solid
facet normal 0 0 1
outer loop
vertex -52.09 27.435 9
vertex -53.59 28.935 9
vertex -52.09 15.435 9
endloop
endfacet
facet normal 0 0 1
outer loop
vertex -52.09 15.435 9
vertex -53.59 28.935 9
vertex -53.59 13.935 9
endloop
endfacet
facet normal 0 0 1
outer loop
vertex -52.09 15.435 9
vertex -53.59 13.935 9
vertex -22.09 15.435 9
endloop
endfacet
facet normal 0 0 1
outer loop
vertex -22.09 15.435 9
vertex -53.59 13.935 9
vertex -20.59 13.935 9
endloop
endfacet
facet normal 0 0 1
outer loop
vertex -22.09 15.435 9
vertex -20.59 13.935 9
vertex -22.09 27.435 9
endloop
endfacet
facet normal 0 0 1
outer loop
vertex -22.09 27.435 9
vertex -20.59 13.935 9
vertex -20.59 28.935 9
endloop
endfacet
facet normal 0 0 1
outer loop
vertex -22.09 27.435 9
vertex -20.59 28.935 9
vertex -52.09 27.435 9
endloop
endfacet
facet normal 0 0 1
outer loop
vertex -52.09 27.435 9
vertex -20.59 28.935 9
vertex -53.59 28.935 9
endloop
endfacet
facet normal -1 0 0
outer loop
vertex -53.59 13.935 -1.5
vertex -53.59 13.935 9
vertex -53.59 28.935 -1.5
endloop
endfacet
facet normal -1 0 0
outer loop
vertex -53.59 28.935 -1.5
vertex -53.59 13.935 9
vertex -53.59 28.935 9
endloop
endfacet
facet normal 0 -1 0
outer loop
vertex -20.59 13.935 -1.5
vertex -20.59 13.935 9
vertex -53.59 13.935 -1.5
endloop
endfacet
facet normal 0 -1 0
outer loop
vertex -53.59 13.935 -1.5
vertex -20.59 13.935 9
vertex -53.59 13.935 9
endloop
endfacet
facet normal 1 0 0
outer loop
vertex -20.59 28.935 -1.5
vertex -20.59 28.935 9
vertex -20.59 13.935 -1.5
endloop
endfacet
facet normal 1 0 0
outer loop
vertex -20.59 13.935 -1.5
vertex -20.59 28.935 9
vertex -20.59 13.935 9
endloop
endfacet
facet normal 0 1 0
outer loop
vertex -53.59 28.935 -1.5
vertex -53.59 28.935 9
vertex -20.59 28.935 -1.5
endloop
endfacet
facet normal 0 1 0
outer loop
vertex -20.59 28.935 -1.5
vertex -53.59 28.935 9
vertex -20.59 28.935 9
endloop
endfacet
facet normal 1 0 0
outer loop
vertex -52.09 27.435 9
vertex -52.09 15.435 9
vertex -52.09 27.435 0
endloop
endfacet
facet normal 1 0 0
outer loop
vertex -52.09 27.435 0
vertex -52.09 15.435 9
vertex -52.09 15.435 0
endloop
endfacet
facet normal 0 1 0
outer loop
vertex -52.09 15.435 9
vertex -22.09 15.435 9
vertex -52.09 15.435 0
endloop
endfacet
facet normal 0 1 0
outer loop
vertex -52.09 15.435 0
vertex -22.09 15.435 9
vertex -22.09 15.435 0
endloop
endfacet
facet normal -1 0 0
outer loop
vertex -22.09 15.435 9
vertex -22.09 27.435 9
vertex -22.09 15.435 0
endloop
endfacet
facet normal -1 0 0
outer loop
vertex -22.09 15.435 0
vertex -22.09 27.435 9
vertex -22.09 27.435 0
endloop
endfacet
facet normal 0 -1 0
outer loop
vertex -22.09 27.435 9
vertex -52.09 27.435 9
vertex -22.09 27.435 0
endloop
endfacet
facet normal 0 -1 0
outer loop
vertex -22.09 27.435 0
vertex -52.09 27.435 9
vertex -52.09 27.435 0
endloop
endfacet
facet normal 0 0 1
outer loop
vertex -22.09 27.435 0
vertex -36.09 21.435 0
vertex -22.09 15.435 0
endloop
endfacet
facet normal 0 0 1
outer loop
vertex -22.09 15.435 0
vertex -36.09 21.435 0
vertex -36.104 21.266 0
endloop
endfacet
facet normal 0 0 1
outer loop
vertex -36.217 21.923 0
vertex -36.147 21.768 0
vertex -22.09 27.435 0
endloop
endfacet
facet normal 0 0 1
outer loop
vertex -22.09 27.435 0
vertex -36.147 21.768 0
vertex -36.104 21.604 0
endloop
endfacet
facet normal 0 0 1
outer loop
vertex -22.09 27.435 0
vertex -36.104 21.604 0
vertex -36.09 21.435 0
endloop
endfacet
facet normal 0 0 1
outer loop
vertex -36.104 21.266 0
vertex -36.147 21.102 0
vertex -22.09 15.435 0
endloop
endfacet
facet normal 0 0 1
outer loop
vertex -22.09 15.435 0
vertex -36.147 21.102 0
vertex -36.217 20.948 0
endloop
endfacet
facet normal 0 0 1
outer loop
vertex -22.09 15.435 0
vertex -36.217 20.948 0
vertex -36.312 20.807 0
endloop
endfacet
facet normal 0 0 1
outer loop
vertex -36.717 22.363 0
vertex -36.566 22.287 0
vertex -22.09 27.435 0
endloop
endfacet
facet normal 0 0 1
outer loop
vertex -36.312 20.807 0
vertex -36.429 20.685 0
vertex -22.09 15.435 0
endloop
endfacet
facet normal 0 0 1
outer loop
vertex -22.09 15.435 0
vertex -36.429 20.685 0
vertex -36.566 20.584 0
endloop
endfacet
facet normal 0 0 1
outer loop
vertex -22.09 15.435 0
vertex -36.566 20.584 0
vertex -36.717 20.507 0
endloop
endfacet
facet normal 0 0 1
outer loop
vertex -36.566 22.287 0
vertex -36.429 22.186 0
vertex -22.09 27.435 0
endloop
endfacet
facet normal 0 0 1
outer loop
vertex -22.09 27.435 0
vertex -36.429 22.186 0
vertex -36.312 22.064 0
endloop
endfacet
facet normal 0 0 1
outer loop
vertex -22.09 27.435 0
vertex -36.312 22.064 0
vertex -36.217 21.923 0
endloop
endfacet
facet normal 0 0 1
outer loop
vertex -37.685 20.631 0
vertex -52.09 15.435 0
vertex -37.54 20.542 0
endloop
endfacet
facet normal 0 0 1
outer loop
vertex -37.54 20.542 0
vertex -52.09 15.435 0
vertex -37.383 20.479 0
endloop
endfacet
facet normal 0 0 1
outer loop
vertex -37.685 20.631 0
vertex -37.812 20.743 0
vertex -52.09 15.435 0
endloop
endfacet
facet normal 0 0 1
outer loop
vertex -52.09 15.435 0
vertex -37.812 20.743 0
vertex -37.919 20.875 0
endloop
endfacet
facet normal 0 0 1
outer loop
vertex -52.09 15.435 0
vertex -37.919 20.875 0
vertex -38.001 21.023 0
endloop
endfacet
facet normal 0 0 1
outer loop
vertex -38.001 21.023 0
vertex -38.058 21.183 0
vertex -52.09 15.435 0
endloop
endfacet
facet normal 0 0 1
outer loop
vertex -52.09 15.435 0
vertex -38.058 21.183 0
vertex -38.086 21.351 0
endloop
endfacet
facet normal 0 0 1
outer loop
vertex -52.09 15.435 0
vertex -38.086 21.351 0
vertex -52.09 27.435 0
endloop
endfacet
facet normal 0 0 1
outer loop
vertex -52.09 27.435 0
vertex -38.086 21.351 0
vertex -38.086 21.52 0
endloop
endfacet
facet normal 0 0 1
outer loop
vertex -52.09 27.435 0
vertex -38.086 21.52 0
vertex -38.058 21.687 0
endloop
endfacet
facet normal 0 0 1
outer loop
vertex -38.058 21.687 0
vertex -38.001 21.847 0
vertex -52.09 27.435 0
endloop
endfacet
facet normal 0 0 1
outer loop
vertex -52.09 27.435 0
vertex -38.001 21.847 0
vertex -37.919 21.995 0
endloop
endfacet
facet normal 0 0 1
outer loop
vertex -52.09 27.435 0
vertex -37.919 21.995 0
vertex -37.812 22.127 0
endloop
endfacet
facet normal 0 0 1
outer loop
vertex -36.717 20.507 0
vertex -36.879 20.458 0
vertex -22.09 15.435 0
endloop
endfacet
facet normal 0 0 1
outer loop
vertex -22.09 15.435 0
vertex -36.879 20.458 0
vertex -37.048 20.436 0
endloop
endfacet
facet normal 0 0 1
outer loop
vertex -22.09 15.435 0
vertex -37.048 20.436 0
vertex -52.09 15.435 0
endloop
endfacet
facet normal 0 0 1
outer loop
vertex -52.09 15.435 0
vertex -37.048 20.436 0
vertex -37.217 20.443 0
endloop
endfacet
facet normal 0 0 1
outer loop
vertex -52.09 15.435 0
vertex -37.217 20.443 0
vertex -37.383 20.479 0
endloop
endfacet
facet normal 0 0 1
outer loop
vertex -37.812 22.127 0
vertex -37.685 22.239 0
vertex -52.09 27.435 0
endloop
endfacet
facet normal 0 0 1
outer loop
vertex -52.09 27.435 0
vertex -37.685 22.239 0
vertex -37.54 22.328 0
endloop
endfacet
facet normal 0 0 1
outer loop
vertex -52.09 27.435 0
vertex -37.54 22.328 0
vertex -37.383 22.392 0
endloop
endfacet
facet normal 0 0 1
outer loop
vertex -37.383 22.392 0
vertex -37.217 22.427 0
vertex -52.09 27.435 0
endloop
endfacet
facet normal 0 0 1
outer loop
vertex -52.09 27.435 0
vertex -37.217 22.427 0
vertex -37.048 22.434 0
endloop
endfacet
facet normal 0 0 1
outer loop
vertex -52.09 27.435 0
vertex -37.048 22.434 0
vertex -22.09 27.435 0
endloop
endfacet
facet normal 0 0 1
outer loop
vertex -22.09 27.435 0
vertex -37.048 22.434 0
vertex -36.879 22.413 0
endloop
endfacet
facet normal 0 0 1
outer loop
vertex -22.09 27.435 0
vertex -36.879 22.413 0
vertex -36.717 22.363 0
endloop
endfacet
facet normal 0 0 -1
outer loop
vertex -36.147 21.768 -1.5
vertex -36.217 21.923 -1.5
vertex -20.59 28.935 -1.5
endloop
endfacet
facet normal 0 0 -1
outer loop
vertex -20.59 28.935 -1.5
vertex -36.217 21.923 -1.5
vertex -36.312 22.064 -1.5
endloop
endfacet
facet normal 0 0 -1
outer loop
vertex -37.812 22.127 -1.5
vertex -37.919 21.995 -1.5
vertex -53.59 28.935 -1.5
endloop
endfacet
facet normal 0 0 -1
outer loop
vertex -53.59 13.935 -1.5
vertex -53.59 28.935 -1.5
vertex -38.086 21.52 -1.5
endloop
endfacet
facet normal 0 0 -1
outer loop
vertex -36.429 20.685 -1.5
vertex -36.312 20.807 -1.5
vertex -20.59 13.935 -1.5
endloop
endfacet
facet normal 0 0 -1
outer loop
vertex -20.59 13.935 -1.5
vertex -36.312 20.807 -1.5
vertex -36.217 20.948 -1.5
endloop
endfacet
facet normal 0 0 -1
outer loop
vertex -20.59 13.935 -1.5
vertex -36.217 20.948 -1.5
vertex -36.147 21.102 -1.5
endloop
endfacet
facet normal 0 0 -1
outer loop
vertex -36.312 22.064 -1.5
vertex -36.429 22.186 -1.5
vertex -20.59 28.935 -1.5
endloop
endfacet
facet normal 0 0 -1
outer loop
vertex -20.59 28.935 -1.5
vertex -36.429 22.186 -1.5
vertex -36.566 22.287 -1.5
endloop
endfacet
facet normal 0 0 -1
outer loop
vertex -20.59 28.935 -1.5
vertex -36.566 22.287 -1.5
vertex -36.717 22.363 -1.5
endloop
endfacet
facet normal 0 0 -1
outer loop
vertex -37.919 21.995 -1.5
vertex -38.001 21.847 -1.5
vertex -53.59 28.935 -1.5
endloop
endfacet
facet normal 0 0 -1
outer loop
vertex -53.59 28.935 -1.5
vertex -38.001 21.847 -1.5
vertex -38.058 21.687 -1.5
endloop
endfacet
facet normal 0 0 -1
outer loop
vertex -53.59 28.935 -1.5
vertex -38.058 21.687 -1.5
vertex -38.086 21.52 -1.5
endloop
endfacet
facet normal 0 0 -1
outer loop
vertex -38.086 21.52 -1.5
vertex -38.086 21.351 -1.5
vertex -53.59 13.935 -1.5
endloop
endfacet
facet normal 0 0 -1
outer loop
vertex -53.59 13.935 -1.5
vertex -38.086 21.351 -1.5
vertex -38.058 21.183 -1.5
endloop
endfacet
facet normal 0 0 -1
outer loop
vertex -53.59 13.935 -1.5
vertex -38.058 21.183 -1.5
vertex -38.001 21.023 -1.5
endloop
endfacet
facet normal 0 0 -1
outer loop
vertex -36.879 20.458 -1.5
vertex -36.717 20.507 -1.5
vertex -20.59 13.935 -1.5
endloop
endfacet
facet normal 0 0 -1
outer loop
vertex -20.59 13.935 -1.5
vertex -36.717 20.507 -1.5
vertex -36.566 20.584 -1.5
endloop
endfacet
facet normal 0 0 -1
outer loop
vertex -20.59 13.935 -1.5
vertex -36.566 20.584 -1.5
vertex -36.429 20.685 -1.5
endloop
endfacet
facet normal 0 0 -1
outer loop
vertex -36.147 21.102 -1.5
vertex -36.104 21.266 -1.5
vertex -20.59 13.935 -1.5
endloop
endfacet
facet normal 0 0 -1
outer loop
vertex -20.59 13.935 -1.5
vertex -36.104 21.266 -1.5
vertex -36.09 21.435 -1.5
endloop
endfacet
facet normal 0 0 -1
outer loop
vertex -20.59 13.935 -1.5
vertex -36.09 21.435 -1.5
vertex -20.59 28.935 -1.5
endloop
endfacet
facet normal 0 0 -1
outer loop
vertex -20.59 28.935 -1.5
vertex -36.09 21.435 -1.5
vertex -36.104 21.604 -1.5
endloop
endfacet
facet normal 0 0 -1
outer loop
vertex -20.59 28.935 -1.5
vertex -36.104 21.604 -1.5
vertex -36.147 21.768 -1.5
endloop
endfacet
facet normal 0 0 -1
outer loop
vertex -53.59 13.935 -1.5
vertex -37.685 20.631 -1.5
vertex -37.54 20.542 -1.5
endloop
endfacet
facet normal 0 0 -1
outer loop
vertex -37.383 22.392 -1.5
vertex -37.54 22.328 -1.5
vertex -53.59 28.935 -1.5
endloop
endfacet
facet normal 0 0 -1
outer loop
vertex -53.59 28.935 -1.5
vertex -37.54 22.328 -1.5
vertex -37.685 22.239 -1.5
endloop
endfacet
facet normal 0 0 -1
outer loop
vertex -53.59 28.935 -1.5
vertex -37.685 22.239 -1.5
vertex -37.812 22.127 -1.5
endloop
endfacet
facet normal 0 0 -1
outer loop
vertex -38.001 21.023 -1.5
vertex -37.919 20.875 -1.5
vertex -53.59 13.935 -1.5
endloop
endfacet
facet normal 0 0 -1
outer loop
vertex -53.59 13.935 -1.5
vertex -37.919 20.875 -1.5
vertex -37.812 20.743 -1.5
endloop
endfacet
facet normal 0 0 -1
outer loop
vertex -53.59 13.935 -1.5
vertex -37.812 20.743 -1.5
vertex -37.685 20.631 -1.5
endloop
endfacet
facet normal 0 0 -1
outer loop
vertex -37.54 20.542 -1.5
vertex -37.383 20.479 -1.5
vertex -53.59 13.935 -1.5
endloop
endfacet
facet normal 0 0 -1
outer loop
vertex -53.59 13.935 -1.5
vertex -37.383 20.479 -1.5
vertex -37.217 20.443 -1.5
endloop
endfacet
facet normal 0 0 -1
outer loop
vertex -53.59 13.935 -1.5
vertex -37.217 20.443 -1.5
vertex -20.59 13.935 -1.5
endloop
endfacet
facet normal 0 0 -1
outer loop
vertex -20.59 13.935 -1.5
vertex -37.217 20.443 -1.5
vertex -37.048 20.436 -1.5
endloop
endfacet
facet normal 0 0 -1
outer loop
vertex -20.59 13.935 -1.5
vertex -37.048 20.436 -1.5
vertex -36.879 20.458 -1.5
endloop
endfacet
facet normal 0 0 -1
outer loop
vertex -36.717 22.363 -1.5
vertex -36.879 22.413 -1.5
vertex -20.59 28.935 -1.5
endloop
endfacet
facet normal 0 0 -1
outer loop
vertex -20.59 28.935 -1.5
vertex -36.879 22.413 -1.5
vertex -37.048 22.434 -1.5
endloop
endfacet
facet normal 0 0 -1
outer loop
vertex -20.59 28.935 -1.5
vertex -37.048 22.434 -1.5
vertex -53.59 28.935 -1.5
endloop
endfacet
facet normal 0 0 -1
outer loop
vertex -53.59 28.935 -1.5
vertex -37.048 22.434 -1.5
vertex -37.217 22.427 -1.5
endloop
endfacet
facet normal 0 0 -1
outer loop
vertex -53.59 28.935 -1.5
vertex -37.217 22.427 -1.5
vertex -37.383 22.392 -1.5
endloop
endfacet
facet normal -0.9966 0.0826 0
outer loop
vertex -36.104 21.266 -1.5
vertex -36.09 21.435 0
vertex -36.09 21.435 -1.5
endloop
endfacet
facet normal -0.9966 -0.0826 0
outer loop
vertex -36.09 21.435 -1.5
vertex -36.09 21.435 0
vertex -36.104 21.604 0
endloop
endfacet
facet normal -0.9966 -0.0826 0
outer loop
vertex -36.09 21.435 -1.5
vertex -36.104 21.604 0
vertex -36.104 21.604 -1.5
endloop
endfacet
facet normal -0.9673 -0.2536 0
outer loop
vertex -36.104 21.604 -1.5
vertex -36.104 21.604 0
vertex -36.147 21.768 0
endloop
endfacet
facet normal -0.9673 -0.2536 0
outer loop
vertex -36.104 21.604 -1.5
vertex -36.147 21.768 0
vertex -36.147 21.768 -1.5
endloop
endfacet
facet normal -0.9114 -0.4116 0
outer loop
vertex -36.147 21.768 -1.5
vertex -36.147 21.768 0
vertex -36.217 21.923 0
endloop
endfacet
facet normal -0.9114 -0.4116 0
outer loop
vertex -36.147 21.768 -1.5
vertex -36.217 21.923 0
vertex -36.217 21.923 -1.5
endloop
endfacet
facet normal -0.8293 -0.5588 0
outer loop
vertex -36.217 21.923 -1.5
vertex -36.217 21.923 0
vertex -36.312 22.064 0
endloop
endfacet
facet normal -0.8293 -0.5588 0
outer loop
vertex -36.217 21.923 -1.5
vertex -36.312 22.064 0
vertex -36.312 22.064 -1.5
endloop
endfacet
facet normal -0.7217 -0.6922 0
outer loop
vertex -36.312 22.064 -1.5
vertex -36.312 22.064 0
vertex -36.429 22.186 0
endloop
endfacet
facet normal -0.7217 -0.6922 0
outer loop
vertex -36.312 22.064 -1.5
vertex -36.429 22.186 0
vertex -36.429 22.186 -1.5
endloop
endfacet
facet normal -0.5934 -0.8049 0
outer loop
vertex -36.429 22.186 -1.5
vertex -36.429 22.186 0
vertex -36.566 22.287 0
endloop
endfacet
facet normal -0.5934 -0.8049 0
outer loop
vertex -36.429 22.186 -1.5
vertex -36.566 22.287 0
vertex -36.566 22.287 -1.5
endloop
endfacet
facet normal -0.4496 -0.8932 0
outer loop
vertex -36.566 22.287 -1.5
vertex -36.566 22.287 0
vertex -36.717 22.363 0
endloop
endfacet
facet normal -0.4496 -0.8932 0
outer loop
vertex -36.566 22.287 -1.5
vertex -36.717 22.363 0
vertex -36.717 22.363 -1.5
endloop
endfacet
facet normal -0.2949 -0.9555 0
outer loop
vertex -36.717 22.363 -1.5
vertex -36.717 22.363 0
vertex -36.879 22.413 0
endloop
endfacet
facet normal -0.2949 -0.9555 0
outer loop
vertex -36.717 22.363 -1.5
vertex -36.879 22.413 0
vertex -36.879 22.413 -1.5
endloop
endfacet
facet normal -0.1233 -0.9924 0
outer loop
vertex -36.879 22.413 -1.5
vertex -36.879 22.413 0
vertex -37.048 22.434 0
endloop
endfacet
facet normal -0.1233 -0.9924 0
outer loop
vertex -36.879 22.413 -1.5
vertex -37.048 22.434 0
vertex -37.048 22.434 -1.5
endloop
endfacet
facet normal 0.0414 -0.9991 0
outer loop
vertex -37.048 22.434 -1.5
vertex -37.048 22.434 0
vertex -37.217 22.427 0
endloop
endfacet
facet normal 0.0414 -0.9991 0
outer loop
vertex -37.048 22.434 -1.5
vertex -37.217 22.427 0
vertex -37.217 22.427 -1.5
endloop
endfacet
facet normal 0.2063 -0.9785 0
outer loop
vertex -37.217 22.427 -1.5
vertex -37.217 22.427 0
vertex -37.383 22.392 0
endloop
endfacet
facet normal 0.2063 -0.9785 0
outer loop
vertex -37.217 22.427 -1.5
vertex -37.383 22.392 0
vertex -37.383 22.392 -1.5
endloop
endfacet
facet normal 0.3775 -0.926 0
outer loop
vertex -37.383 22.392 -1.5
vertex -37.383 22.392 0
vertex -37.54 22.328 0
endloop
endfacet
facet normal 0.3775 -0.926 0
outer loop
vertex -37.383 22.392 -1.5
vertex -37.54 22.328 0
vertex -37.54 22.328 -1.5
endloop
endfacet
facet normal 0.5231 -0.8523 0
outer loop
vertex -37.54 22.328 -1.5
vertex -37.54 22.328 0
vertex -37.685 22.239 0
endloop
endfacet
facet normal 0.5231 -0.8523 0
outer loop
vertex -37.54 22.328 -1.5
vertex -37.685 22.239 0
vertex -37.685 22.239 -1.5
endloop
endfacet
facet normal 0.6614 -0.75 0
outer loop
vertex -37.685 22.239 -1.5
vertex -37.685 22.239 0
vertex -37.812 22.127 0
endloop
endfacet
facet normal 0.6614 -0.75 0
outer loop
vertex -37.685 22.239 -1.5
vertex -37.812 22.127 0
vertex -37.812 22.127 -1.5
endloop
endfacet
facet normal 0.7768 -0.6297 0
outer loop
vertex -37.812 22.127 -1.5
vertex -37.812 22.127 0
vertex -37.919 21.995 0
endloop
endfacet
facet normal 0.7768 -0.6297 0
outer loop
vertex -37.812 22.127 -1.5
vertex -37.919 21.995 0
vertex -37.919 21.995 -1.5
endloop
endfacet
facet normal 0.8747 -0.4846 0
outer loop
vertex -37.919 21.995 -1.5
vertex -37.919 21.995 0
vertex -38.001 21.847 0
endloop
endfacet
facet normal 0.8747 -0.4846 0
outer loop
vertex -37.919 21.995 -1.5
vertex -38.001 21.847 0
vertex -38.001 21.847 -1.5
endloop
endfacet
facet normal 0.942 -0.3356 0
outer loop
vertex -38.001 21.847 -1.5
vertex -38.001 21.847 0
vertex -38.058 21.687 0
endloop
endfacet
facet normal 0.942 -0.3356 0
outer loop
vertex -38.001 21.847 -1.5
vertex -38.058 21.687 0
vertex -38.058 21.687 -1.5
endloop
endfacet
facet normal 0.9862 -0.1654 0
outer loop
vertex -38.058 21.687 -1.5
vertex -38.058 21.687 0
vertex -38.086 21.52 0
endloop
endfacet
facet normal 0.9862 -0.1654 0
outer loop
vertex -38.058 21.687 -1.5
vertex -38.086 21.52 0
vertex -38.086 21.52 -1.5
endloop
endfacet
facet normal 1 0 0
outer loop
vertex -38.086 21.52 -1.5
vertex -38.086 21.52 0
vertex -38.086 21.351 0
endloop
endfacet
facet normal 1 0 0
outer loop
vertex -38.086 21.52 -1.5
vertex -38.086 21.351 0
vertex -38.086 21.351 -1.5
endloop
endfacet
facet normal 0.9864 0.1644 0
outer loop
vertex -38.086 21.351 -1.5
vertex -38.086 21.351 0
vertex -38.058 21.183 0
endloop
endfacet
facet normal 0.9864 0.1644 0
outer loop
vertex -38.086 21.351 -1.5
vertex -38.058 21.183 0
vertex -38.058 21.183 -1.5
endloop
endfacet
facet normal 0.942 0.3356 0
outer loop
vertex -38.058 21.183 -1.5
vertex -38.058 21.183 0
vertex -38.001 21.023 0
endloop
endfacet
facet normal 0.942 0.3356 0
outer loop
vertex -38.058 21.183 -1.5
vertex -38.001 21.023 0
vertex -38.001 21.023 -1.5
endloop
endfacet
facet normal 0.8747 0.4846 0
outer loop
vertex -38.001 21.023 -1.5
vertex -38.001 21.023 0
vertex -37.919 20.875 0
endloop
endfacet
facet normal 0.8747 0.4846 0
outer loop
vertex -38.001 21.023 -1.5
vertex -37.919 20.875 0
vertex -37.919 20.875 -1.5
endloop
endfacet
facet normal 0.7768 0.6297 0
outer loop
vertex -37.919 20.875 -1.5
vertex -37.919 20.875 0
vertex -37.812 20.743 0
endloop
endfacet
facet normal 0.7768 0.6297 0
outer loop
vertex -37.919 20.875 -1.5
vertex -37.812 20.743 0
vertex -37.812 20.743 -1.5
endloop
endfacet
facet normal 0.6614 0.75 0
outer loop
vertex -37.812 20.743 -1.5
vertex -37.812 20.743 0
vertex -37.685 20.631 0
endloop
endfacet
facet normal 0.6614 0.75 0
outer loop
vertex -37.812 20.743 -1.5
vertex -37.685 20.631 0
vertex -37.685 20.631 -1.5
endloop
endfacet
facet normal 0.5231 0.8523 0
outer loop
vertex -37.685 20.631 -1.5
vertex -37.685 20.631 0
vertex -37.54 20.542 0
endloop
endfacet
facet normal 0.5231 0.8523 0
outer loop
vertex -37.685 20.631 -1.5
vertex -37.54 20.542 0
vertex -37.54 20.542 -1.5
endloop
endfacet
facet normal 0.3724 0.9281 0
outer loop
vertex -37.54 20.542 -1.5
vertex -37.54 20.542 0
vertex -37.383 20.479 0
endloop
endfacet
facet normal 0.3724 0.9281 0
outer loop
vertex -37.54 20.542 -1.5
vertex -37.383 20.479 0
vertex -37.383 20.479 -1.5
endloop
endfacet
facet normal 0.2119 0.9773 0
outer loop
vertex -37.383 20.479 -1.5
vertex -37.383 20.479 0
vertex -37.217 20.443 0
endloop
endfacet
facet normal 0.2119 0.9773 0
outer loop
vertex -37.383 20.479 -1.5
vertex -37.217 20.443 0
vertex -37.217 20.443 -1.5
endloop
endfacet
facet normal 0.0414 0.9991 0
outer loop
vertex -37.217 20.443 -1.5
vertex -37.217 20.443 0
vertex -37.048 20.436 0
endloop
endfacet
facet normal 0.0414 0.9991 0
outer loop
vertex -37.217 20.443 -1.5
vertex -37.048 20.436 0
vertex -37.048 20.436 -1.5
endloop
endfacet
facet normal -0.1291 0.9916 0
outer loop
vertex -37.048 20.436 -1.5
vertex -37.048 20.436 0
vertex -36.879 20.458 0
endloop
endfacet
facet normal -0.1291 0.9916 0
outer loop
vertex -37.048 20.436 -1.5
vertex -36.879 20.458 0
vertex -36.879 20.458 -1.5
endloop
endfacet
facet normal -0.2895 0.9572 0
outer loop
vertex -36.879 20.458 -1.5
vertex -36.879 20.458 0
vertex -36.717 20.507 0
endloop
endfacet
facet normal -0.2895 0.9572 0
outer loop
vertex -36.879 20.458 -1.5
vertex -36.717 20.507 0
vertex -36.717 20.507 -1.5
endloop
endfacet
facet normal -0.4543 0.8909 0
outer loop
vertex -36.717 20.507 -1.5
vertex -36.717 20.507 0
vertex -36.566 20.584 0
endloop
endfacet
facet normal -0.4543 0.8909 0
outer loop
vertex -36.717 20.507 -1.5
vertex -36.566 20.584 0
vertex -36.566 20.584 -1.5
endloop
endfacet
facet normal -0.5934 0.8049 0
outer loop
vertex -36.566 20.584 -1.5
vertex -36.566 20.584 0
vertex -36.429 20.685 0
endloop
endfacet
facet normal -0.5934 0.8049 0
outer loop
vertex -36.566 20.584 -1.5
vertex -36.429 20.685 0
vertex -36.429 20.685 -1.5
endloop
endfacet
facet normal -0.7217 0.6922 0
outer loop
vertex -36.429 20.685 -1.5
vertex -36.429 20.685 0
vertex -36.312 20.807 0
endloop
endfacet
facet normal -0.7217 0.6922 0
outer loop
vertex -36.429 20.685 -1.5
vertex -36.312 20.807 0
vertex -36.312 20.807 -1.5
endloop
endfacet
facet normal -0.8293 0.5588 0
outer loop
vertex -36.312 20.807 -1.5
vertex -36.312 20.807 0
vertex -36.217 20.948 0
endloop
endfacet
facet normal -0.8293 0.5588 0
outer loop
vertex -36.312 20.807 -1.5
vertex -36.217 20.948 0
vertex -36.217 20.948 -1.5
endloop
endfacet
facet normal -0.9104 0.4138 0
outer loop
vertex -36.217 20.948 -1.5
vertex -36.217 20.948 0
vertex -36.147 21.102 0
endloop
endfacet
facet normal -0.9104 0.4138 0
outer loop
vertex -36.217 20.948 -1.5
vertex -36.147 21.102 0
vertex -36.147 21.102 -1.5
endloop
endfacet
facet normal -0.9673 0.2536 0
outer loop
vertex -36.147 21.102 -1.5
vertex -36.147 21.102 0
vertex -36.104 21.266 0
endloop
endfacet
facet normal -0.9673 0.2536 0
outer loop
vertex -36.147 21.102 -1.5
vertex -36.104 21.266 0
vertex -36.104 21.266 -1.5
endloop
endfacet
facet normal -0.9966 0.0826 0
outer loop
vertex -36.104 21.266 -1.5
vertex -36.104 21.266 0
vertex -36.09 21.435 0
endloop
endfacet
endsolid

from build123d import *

# Parameters (mm, degrees)
CROQUIS1_W              = 33
CROQUIS1_H              = 15
CROQUIS1_W_2            = 30
CROQUIS1_H_2            = 12
SALIENTE_EXTRUIR1_DEPTH = 9
CROQUIS2_W              = 33
CROQUIS2_H              = 15
SALIENTE_EXTRUIR2_DEPTH = 1.5
CROQUIS3_R              = 1
CORTAR_EXTRUIR1_DEPTH   = 1.5


with BuildPart() as part:
    # Croquis1 → Saliente-Extruir1 (new body)
    with BuildSketch(Plane.XY):
        with Locations((-37.090098455, 21.435354346)):
            Rectangle(CROQUIS1_W, CROQUIS1_H)
        with Locations((-37.090098455, 21.435354346)):
            Rectangle(CROQUIS1_W_2, CROQUIS1_H_2, mode=Mode.SUBTRACT)
    extrude(amount=SALIENTE_EXTRUIR1_DEPTH)

    # Croquis2 → Saliente-Extruir2 (add)
    with BuildSketch(Plane.XY):
        with Locations((-37.090098455, 21.435354346)):
            Rectangle(CROQUIS2_W, CROQUIS2_H)
    extrude(amount=-SALIENTE_EXTRUIR2_DEPTH)

    # Croquis3 → Cortar-Extruir1 (cut)
    with BuildSketch(Plane.XY):
        with Locations((-37.090098455, 21.435354346)):
            Circle(CROQUIS3_R)
    extrude(amount=-CORTAR_EXTRUIR1_DEPTH, mode=Mode.SUBTRACT)


solid = part.part
